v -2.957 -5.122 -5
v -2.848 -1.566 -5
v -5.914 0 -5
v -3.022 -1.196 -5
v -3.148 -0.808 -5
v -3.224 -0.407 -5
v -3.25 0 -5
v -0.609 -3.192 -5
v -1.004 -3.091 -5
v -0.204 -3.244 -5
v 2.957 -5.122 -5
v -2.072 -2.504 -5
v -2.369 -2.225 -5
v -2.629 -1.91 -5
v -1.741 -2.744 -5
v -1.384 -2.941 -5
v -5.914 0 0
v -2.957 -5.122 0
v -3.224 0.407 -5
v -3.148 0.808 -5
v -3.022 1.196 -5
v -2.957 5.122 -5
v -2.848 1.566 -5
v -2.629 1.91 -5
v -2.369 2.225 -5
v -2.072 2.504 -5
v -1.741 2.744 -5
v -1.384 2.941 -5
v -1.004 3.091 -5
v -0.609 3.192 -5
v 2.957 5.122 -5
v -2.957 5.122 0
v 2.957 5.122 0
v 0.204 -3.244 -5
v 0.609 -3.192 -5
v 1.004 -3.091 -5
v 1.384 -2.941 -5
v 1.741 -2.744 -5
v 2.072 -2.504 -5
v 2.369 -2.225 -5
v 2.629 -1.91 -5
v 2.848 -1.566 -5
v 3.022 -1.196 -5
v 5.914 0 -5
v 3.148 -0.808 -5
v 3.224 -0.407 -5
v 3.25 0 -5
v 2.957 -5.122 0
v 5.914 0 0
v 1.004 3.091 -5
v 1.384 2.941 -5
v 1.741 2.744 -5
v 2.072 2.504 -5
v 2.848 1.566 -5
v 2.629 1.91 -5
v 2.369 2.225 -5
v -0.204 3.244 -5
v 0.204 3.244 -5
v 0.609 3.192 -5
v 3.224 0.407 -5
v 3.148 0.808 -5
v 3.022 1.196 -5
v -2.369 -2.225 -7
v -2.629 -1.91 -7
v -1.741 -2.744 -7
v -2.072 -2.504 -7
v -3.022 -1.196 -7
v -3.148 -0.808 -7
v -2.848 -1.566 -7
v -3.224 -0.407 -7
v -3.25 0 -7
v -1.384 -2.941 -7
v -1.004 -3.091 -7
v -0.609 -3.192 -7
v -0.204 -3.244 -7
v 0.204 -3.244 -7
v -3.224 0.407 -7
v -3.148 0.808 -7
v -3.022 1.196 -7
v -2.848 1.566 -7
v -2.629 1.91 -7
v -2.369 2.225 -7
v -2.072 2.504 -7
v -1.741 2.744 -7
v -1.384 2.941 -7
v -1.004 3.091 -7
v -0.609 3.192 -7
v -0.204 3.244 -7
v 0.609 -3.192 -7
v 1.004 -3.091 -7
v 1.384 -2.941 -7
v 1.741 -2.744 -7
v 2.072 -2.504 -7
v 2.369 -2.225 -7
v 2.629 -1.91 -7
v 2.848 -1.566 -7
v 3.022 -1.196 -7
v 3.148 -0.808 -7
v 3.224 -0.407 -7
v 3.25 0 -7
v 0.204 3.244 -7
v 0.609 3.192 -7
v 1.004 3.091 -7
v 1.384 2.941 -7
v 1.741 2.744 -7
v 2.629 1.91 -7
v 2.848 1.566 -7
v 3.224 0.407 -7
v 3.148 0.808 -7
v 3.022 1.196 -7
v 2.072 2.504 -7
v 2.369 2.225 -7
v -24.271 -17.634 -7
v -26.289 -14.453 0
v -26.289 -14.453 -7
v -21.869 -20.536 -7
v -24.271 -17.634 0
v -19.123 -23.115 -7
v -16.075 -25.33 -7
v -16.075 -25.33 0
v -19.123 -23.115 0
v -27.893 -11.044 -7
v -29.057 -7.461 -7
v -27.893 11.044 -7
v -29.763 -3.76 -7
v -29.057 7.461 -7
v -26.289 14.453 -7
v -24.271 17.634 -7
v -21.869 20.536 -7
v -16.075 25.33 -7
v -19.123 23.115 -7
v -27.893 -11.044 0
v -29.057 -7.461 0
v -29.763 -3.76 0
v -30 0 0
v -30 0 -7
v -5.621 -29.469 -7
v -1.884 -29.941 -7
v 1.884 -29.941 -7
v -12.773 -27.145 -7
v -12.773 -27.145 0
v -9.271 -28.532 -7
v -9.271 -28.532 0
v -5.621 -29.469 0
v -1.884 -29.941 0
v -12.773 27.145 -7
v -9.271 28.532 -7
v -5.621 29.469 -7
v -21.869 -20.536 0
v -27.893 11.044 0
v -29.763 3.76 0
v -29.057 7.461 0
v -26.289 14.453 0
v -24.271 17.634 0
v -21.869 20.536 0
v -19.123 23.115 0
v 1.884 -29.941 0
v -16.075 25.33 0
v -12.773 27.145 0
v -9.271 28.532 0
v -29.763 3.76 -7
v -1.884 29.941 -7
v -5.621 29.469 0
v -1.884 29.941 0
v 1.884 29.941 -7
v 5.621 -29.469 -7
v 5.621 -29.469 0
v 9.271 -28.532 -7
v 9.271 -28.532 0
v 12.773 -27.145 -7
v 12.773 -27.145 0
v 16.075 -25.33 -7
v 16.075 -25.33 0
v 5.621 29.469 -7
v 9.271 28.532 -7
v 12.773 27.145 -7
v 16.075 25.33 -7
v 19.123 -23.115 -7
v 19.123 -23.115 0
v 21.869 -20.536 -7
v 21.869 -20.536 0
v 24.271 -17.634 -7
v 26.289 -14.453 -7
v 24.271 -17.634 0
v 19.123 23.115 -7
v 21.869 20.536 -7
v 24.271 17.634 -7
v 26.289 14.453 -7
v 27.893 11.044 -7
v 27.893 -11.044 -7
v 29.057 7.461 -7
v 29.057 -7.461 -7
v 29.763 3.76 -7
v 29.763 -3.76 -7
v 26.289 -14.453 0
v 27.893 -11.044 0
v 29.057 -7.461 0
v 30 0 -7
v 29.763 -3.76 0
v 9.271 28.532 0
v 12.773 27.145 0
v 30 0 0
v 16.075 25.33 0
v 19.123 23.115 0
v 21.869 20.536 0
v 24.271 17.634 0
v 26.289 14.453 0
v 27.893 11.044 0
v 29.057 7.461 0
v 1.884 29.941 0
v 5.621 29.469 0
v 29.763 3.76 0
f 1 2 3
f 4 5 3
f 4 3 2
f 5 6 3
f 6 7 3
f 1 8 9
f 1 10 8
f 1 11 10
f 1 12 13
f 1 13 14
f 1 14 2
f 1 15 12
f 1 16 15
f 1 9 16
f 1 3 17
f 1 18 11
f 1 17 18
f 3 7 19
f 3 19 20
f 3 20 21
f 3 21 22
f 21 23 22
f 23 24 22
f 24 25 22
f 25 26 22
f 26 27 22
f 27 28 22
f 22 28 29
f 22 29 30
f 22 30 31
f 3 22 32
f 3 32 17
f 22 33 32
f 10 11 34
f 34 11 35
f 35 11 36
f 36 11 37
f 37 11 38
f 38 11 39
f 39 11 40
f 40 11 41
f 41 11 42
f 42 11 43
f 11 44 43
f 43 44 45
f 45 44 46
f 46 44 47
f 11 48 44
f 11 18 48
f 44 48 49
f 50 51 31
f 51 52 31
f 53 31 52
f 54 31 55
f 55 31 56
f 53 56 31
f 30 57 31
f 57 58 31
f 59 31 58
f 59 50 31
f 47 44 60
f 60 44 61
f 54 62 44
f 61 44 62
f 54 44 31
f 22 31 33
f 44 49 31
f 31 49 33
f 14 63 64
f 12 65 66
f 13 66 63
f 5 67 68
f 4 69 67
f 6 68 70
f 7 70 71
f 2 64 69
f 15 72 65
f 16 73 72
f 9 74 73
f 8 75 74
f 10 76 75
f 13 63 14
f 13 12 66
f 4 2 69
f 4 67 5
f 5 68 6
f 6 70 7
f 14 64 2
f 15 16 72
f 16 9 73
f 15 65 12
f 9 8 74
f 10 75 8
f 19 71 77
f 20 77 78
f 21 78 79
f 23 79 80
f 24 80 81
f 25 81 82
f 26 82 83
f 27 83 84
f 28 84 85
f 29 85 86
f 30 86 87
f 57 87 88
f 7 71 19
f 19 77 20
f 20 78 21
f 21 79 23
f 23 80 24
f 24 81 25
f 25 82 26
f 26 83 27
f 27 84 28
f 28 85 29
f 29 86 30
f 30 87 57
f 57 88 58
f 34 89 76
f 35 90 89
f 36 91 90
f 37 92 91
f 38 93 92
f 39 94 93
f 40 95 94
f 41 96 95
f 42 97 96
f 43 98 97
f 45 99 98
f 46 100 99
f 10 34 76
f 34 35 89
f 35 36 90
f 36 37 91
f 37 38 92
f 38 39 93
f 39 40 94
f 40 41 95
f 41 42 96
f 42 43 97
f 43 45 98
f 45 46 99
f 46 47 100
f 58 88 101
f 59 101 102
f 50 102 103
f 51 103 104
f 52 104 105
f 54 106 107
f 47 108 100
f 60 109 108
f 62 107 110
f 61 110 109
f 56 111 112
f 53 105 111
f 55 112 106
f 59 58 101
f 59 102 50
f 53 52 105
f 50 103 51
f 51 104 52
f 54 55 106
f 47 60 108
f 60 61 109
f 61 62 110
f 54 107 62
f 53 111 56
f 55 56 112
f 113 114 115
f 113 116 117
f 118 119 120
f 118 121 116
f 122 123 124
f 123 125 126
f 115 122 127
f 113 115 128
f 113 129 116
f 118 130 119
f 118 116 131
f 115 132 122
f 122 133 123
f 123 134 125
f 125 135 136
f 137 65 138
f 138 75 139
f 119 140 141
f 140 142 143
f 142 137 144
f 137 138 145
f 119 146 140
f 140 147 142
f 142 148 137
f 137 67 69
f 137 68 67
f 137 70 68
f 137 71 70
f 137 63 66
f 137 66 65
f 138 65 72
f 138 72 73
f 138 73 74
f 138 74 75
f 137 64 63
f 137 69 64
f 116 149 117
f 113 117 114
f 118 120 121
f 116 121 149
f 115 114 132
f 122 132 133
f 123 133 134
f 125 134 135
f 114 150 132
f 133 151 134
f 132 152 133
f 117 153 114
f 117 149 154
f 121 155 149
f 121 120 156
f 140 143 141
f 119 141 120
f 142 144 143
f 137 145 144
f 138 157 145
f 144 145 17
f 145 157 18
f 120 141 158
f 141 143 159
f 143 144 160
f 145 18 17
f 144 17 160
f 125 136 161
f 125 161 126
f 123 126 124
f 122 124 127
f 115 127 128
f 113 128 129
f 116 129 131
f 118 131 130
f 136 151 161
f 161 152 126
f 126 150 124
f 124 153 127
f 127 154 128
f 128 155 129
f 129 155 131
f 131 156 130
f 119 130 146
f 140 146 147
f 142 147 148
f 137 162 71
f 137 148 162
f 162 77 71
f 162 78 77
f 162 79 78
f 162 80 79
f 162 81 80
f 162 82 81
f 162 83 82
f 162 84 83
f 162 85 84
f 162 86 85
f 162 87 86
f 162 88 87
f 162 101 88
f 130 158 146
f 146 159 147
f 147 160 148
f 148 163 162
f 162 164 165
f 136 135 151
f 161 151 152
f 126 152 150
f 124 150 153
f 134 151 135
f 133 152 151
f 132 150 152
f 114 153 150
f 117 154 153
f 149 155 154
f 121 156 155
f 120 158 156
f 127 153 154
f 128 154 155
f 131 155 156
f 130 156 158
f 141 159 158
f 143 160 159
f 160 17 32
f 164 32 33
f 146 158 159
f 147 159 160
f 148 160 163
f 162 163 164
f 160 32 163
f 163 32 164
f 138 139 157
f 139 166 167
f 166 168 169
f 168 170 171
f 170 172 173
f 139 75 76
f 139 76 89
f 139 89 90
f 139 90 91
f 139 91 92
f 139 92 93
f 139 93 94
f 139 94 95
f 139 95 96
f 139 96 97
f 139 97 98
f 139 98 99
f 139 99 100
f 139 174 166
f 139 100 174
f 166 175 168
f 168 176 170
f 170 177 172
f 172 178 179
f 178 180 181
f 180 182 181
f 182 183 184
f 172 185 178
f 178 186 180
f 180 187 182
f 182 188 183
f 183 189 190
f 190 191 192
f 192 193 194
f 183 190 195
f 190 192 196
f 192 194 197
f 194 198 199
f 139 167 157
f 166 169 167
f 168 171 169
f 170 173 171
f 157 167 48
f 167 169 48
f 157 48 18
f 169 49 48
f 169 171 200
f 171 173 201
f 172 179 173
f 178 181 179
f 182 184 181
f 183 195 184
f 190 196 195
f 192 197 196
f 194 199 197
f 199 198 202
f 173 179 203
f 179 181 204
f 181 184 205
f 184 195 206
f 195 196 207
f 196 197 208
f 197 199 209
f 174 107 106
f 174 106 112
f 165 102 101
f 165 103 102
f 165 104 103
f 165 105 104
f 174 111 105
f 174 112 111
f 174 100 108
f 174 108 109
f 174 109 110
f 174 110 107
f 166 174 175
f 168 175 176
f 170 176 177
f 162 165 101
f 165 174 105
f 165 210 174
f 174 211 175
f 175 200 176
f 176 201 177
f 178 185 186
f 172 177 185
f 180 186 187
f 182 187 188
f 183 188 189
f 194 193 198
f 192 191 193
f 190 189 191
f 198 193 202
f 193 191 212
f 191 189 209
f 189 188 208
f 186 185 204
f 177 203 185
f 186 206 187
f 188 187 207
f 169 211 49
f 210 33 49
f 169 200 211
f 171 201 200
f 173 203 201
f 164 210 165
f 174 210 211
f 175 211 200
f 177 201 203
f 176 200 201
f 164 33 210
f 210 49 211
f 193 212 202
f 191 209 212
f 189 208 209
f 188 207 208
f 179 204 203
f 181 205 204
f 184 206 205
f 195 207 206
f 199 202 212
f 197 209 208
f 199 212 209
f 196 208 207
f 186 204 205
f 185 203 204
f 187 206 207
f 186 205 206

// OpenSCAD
$fn = 50;

difference() {
	union() {
		translate(v = [0, 0, -7.0]) {
			cylinder(h = 7.0, r = 30.0);
		}
	}
	union() {
		translate(v = [0, 0, 0]) {
			rotate(a = [0, 0, 0]) {
				difference() {
					union() {
						translate(v = [0, 0, -5]) {
							linear_extrude(height = 5) {
								polygon(points = [[5.914249999999999, 0.0], [2.957125, 5.1218907443321156], [-2.9571249999999982, 5.1218907443321156], [-5.914249999999999, 7.242867331857232e-16], [-2.9571250000000022, -5.121890744332115], [2.9571249999999956, -5.121890744332118]]);
							}
						}
					}
					union();
				}
			}
		}
		#translate(v = [0, 0, -100.0]) {
			cylinder(h = 200, r = 3.25);
		}
	}
}
